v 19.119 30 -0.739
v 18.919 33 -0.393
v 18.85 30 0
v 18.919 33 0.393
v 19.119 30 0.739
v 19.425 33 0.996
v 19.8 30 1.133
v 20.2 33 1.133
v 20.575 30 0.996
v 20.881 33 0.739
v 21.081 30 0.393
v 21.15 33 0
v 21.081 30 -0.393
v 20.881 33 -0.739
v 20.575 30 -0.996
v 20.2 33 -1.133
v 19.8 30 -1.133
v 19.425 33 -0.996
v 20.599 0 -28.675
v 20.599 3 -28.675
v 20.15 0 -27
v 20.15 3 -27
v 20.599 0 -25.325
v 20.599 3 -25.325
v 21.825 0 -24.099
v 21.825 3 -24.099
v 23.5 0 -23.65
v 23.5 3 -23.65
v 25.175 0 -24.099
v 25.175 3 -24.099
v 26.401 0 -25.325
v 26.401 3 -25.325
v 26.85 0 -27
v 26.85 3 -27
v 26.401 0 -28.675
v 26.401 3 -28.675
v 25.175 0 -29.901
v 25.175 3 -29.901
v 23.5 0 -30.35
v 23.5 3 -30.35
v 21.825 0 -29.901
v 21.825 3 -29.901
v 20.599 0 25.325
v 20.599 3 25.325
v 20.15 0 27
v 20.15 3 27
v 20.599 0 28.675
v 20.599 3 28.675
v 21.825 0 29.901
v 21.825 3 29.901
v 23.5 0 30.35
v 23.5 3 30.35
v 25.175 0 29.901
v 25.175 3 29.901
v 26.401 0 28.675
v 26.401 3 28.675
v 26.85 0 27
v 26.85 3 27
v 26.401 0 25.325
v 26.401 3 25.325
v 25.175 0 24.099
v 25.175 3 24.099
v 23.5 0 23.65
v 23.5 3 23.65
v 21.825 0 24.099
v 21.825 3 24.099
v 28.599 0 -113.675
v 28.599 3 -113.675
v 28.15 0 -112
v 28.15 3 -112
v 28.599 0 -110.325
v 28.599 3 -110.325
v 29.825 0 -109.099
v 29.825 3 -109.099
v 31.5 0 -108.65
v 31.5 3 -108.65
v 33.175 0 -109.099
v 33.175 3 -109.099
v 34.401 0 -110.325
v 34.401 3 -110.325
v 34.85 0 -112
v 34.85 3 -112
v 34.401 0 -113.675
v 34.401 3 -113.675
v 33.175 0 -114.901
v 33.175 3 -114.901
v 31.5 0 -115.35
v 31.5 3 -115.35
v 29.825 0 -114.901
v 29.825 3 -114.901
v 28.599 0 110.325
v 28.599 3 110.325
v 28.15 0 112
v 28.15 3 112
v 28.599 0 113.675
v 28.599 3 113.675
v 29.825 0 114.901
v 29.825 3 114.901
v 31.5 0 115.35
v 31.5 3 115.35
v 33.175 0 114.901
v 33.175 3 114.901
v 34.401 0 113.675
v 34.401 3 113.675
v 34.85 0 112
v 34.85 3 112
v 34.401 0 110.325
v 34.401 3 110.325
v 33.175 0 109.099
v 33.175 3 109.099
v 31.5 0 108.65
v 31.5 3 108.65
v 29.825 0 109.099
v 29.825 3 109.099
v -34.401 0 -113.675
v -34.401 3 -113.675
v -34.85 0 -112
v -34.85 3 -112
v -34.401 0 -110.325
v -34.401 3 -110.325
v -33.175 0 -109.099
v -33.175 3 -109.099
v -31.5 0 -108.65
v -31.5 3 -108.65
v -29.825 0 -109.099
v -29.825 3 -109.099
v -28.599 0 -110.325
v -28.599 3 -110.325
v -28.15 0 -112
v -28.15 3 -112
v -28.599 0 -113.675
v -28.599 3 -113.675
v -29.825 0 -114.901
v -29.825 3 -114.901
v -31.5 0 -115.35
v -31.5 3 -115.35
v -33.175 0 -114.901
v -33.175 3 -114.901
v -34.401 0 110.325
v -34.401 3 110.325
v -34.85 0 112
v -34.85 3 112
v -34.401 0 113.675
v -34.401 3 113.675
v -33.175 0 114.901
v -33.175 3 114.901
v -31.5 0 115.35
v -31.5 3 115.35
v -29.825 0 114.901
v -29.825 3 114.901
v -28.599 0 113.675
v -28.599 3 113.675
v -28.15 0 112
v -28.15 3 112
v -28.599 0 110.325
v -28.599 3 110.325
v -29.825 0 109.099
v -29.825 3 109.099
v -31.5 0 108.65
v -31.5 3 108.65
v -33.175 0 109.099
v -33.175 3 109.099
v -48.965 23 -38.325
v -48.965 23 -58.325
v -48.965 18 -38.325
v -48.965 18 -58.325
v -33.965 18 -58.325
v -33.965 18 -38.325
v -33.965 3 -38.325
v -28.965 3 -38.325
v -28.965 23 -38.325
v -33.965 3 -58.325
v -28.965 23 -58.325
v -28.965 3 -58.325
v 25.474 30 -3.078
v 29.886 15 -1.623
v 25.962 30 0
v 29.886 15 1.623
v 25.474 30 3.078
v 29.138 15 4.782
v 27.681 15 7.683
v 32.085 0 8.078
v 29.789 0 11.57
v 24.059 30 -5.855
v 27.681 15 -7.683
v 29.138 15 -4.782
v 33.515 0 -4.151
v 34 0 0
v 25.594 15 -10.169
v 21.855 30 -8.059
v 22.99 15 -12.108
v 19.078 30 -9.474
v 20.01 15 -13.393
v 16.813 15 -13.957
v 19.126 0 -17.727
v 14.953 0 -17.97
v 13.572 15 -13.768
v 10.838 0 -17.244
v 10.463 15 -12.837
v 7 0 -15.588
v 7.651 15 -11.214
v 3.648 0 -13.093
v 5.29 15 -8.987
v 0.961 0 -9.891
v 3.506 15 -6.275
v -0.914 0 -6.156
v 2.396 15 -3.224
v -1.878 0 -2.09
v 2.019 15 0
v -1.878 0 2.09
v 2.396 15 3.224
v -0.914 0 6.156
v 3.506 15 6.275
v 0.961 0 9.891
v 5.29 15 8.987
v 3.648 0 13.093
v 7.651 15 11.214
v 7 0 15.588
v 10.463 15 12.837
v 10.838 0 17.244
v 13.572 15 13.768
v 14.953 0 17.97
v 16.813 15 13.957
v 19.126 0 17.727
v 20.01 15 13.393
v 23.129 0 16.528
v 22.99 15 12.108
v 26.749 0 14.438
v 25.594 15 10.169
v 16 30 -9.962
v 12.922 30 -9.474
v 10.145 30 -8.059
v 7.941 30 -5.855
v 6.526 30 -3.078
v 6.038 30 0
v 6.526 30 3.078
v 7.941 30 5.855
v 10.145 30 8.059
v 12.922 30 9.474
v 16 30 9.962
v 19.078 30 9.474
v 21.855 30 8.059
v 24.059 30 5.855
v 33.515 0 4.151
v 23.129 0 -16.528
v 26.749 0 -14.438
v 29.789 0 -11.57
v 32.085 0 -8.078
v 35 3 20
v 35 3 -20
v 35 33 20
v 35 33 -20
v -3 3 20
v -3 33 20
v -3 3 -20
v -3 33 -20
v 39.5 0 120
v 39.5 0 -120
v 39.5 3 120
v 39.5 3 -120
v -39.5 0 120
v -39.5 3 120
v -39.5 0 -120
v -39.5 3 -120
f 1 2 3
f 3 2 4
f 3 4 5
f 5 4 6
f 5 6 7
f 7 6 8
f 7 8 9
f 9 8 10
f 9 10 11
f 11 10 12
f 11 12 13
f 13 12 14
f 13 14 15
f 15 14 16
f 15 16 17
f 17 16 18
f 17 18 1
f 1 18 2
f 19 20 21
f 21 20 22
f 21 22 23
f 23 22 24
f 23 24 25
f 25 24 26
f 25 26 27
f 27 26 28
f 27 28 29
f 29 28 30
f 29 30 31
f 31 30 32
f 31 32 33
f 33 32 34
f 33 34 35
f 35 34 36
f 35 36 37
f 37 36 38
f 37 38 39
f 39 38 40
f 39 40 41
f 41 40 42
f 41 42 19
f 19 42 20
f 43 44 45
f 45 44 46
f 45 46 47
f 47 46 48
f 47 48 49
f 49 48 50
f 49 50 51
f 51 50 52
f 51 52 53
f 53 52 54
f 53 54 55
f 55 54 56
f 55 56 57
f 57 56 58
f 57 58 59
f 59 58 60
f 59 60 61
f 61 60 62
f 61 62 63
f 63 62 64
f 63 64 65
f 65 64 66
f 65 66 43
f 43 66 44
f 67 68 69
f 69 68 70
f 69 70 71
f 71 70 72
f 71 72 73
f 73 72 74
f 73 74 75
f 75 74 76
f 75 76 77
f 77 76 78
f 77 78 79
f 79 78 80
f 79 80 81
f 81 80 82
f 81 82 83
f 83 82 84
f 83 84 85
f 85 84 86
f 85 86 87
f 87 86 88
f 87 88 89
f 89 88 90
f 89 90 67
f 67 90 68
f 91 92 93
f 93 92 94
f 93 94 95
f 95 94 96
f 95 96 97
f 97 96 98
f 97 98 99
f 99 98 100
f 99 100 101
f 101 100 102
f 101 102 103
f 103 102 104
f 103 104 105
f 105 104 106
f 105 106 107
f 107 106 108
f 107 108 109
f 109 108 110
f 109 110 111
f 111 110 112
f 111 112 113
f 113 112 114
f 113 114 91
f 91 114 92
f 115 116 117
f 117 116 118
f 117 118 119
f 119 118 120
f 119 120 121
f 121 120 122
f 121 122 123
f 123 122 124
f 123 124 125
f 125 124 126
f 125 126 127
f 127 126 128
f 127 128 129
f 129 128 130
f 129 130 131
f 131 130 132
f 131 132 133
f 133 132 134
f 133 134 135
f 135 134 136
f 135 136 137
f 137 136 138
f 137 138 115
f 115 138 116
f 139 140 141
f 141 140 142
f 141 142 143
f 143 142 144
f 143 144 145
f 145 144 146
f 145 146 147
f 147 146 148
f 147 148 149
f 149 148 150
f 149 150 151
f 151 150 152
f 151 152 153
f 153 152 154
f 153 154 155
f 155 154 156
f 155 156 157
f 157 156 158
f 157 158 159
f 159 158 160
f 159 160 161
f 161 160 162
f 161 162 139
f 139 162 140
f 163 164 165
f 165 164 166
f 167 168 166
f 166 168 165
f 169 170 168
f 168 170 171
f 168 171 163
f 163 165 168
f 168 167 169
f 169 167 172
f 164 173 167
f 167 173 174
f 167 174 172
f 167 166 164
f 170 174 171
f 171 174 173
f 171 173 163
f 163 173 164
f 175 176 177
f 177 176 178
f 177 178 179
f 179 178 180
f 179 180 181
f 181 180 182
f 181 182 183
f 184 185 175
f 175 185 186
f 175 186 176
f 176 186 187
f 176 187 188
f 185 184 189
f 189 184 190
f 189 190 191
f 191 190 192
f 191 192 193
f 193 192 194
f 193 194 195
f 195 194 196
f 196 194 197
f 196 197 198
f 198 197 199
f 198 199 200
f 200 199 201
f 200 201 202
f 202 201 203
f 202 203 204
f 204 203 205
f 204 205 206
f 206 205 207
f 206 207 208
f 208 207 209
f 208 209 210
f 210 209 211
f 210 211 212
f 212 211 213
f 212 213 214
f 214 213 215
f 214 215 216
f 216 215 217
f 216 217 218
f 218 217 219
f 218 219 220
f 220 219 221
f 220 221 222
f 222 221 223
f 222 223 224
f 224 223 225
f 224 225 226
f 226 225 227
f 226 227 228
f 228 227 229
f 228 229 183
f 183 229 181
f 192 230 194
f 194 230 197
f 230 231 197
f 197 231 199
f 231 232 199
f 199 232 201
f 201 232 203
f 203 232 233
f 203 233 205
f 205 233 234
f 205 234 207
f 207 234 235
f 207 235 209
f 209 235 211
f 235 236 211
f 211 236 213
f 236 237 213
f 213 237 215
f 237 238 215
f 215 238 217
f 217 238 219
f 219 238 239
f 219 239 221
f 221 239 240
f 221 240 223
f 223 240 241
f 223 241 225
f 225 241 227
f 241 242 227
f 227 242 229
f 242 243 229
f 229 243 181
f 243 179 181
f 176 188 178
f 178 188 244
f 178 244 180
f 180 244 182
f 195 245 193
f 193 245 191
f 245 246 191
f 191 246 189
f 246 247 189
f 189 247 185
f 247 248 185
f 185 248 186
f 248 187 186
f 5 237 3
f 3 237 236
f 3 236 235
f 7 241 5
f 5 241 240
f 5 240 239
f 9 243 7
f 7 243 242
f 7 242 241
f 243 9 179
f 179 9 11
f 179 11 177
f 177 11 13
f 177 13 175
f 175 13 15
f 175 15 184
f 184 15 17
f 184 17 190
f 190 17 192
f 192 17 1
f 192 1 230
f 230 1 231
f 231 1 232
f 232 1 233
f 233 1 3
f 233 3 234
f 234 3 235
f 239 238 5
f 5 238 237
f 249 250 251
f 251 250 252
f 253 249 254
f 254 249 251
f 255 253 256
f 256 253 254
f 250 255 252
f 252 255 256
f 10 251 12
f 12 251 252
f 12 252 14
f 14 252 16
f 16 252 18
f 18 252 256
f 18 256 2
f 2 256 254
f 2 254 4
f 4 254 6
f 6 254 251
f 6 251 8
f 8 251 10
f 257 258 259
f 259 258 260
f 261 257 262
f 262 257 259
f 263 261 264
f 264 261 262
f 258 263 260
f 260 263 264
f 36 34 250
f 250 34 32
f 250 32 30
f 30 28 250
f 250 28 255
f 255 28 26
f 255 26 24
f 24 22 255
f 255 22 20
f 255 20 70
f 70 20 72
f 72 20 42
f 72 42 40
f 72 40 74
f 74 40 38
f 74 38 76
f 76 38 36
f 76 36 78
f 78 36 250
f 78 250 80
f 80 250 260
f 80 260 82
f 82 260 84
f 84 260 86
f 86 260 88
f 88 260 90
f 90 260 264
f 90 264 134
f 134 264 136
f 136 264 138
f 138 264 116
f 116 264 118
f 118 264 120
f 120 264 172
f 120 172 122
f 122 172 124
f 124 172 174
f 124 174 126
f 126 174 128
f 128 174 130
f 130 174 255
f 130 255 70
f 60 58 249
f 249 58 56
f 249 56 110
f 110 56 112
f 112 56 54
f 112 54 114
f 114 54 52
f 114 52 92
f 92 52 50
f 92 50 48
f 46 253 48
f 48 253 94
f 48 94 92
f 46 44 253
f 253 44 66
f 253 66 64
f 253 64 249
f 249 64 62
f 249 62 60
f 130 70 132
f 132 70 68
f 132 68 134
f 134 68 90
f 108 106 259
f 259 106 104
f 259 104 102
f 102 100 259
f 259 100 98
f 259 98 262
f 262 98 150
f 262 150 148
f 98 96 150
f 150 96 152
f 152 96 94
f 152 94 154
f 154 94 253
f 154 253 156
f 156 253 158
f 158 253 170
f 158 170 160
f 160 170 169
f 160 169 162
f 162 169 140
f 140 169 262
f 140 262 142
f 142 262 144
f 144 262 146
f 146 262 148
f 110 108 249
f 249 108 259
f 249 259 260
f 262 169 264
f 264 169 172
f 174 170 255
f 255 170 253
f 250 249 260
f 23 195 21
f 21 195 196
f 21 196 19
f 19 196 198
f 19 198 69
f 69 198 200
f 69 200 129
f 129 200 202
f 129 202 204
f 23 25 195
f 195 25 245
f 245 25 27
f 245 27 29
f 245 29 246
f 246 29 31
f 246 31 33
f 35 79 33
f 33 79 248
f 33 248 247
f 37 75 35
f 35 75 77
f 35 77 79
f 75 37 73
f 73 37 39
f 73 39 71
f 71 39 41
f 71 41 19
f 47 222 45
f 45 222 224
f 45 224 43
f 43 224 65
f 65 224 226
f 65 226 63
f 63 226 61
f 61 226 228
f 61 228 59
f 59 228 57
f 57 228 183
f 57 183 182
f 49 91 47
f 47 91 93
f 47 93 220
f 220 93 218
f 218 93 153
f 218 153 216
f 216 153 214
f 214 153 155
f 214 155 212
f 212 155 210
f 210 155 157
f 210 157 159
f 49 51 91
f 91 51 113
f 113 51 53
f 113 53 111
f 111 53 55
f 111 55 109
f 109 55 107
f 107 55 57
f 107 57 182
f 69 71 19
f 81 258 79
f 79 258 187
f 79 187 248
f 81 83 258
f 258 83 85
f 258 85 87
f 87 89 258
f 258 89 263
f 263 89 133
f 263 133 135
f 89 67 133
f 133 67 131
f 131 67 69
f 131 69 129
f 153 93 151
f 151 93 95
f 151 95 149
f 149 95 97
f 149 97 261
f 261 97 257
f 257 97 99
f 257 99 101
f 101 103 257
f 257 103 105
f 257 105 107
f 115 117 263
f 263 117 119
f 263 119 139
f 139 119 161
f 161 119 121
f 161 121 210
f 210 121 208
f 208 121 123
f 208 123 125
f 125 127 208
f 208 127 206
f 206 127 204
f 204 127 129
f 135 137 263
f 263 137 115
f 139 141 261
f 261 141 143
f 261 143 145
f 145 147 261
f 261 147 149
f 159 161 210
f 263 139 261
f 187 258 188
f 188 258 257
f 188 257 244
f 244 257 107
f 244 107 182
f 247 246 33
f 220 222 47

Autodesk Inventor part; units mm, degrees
ref_plane "YZ Plane" through (0, 0, 0) normal (1, 0, 0) x (0, 1, 0)
ref_plane "XZ Plane" through (0, 0, 0) normal (0, 1, 0) x (-1, 0, 0)
ref_plane "XY Plane" through (0, 0, 0) normal (0, 0, 1) x (1, 0, 0)
sketch "Sketch44" plane through (0, 0, 0) normal (0, 1, 0) x (-1, 0, 0)
  line L0 (-39.5, 120) -> (39.5, 120)
  line L1 (39.5, 120) -> (39.5, -120)
  line L2 (39.5, -120) -> (-39.5, -120)
  line L3 (-39.5, -120) -> (-39.5, 120)
  line L4 (-39.5, 120) -> (39.5, -120) construction
  line L5 (39.5, 120) -> (-39.5, -120) construction
  point P0 (0, 0)
  dimension "d138" = 79
  dimension "d139" = 240
extrude "Extrusion33" add sketch "Sketch44" along normal blind 3
sketch "Sketch45" plane through (0, 3, 0) normal (0, 1, 0) x (1, 0, 0)
  line L0 (35, -20) -> (-3, -20)
  line L1 (-3, -20) -> (-3, 20)
  line L2 (-3, 20) -> (35, 20)
  line L3 (35, 20) -> (35, -20)
  point P0 (0, 0)
  dimension "d142" = 38
  dimension "d143" = 40
extrude "Extrusion34" add sketch "Sketch45" along normal blind 30
sketch "Sketch47" plane through (0, 0, 0) normal (0, -1, 0) x (1, 0, 0)
  circle A0 centre (16, 0) radius 18
  point P0 (0, 0)
  dimension "d146" = 36
extrude "Extrusion35" cut sketch "Sketch47" against normal blind 30 draft -15
sketch "Sketch60" plane through (0, 3, 0) normal (0, 1, 0) x (1, 0, 0)
  line L0 (-33.965, 38.3247) -> (-28.965, 38.3247)
  line L1 (-28.965, 38.3247) -> (-28.965, 58.3247)
  line L2 (-28.965, 58.3247) -> (-33.965, 58.3247)
  line L3 (-33.965, 58.3247) -> (-33.965, 38.3247)
  point P0 (0, 0)
  dimension "d164" = 5
  dimension "d165" = 20
extrude "Extrusion40" add sketch "Sketch60" along normal blind 20
sketch "Sketch61" plane through (0, 23, 0) normal (0, 1, 0) x (1, 0, 0)
  line L0 (-28.965, 38.3247) -> (-28.965, 58.3247) projected
  line L1 (-28.965, 38.3247) -> (-48.965, 38.3247)
  line L2 (-48.965, 38.3247) -> (-48.965, 58.3247)
  line L3 (-48.965, 58.3247) -> (-28.965, 58.3247)
  line L4 (-28.965, 58.3247) -> (-28.965, 38.3247)
  point P0 (0, 0)
  dimension "d168" = 20
  dimension "d169" = 20
extrude "Extrusion41" add sketch "Sketch61" against normal blind 5
sketch "Sketch68" plane through (0, 3, 0) normal (0, 1, 0) x (1, 0, 0)
  circle A0 centre (-31.5, -112) radius 3.35
  circle A1 centre (31.5, -112) radius 3.35
  circle A2 centre (-31.5, 112) radius 3.35
  circle A3 centre (31.5, 112) radius 3.35
  point P0 (0, 0)
  dimension "d192" = 6.7
  dimension "d193" = 6.7
  dimension "d194" = 6.7
  dimension "d195" = 6.7
extrude "Extrusion46" cut sketch "Sketch68" against normal through all
sketch "Sketch69" plane through (0, 3, 0) normal (0, 1, 0) x (1, 0, 0)
  circle A0 centre (23.5, -27) radius 3.35
  circle A1 centre (23.5, 27) radius 3.35
  point P0 (0, 0)
  dimension "d198" = 6.7
  dimension "d199" = 6.7
extrude "Extrusion47" cut sketch "Sketch69" against normal through all
sketch "Sketch74" plane through (0, 33, 0) normal (0, 1, 0) x (1, 0, 0)
  circle A0 centre (20, 0) radius 1.15
  point P0 (0, 0)
  dimension "d210" = 2.3
extrude "Extrusion51" cut sketch "Sketch74" against normal blind 10
equation "\"d193\" = d192"
equation "\"d194\" = d192"
equation "\"d195\" = d192"
equation "\"d198\" = d192"
equation "\"d199\" = d192"
properties part number "liquid port_v12"
